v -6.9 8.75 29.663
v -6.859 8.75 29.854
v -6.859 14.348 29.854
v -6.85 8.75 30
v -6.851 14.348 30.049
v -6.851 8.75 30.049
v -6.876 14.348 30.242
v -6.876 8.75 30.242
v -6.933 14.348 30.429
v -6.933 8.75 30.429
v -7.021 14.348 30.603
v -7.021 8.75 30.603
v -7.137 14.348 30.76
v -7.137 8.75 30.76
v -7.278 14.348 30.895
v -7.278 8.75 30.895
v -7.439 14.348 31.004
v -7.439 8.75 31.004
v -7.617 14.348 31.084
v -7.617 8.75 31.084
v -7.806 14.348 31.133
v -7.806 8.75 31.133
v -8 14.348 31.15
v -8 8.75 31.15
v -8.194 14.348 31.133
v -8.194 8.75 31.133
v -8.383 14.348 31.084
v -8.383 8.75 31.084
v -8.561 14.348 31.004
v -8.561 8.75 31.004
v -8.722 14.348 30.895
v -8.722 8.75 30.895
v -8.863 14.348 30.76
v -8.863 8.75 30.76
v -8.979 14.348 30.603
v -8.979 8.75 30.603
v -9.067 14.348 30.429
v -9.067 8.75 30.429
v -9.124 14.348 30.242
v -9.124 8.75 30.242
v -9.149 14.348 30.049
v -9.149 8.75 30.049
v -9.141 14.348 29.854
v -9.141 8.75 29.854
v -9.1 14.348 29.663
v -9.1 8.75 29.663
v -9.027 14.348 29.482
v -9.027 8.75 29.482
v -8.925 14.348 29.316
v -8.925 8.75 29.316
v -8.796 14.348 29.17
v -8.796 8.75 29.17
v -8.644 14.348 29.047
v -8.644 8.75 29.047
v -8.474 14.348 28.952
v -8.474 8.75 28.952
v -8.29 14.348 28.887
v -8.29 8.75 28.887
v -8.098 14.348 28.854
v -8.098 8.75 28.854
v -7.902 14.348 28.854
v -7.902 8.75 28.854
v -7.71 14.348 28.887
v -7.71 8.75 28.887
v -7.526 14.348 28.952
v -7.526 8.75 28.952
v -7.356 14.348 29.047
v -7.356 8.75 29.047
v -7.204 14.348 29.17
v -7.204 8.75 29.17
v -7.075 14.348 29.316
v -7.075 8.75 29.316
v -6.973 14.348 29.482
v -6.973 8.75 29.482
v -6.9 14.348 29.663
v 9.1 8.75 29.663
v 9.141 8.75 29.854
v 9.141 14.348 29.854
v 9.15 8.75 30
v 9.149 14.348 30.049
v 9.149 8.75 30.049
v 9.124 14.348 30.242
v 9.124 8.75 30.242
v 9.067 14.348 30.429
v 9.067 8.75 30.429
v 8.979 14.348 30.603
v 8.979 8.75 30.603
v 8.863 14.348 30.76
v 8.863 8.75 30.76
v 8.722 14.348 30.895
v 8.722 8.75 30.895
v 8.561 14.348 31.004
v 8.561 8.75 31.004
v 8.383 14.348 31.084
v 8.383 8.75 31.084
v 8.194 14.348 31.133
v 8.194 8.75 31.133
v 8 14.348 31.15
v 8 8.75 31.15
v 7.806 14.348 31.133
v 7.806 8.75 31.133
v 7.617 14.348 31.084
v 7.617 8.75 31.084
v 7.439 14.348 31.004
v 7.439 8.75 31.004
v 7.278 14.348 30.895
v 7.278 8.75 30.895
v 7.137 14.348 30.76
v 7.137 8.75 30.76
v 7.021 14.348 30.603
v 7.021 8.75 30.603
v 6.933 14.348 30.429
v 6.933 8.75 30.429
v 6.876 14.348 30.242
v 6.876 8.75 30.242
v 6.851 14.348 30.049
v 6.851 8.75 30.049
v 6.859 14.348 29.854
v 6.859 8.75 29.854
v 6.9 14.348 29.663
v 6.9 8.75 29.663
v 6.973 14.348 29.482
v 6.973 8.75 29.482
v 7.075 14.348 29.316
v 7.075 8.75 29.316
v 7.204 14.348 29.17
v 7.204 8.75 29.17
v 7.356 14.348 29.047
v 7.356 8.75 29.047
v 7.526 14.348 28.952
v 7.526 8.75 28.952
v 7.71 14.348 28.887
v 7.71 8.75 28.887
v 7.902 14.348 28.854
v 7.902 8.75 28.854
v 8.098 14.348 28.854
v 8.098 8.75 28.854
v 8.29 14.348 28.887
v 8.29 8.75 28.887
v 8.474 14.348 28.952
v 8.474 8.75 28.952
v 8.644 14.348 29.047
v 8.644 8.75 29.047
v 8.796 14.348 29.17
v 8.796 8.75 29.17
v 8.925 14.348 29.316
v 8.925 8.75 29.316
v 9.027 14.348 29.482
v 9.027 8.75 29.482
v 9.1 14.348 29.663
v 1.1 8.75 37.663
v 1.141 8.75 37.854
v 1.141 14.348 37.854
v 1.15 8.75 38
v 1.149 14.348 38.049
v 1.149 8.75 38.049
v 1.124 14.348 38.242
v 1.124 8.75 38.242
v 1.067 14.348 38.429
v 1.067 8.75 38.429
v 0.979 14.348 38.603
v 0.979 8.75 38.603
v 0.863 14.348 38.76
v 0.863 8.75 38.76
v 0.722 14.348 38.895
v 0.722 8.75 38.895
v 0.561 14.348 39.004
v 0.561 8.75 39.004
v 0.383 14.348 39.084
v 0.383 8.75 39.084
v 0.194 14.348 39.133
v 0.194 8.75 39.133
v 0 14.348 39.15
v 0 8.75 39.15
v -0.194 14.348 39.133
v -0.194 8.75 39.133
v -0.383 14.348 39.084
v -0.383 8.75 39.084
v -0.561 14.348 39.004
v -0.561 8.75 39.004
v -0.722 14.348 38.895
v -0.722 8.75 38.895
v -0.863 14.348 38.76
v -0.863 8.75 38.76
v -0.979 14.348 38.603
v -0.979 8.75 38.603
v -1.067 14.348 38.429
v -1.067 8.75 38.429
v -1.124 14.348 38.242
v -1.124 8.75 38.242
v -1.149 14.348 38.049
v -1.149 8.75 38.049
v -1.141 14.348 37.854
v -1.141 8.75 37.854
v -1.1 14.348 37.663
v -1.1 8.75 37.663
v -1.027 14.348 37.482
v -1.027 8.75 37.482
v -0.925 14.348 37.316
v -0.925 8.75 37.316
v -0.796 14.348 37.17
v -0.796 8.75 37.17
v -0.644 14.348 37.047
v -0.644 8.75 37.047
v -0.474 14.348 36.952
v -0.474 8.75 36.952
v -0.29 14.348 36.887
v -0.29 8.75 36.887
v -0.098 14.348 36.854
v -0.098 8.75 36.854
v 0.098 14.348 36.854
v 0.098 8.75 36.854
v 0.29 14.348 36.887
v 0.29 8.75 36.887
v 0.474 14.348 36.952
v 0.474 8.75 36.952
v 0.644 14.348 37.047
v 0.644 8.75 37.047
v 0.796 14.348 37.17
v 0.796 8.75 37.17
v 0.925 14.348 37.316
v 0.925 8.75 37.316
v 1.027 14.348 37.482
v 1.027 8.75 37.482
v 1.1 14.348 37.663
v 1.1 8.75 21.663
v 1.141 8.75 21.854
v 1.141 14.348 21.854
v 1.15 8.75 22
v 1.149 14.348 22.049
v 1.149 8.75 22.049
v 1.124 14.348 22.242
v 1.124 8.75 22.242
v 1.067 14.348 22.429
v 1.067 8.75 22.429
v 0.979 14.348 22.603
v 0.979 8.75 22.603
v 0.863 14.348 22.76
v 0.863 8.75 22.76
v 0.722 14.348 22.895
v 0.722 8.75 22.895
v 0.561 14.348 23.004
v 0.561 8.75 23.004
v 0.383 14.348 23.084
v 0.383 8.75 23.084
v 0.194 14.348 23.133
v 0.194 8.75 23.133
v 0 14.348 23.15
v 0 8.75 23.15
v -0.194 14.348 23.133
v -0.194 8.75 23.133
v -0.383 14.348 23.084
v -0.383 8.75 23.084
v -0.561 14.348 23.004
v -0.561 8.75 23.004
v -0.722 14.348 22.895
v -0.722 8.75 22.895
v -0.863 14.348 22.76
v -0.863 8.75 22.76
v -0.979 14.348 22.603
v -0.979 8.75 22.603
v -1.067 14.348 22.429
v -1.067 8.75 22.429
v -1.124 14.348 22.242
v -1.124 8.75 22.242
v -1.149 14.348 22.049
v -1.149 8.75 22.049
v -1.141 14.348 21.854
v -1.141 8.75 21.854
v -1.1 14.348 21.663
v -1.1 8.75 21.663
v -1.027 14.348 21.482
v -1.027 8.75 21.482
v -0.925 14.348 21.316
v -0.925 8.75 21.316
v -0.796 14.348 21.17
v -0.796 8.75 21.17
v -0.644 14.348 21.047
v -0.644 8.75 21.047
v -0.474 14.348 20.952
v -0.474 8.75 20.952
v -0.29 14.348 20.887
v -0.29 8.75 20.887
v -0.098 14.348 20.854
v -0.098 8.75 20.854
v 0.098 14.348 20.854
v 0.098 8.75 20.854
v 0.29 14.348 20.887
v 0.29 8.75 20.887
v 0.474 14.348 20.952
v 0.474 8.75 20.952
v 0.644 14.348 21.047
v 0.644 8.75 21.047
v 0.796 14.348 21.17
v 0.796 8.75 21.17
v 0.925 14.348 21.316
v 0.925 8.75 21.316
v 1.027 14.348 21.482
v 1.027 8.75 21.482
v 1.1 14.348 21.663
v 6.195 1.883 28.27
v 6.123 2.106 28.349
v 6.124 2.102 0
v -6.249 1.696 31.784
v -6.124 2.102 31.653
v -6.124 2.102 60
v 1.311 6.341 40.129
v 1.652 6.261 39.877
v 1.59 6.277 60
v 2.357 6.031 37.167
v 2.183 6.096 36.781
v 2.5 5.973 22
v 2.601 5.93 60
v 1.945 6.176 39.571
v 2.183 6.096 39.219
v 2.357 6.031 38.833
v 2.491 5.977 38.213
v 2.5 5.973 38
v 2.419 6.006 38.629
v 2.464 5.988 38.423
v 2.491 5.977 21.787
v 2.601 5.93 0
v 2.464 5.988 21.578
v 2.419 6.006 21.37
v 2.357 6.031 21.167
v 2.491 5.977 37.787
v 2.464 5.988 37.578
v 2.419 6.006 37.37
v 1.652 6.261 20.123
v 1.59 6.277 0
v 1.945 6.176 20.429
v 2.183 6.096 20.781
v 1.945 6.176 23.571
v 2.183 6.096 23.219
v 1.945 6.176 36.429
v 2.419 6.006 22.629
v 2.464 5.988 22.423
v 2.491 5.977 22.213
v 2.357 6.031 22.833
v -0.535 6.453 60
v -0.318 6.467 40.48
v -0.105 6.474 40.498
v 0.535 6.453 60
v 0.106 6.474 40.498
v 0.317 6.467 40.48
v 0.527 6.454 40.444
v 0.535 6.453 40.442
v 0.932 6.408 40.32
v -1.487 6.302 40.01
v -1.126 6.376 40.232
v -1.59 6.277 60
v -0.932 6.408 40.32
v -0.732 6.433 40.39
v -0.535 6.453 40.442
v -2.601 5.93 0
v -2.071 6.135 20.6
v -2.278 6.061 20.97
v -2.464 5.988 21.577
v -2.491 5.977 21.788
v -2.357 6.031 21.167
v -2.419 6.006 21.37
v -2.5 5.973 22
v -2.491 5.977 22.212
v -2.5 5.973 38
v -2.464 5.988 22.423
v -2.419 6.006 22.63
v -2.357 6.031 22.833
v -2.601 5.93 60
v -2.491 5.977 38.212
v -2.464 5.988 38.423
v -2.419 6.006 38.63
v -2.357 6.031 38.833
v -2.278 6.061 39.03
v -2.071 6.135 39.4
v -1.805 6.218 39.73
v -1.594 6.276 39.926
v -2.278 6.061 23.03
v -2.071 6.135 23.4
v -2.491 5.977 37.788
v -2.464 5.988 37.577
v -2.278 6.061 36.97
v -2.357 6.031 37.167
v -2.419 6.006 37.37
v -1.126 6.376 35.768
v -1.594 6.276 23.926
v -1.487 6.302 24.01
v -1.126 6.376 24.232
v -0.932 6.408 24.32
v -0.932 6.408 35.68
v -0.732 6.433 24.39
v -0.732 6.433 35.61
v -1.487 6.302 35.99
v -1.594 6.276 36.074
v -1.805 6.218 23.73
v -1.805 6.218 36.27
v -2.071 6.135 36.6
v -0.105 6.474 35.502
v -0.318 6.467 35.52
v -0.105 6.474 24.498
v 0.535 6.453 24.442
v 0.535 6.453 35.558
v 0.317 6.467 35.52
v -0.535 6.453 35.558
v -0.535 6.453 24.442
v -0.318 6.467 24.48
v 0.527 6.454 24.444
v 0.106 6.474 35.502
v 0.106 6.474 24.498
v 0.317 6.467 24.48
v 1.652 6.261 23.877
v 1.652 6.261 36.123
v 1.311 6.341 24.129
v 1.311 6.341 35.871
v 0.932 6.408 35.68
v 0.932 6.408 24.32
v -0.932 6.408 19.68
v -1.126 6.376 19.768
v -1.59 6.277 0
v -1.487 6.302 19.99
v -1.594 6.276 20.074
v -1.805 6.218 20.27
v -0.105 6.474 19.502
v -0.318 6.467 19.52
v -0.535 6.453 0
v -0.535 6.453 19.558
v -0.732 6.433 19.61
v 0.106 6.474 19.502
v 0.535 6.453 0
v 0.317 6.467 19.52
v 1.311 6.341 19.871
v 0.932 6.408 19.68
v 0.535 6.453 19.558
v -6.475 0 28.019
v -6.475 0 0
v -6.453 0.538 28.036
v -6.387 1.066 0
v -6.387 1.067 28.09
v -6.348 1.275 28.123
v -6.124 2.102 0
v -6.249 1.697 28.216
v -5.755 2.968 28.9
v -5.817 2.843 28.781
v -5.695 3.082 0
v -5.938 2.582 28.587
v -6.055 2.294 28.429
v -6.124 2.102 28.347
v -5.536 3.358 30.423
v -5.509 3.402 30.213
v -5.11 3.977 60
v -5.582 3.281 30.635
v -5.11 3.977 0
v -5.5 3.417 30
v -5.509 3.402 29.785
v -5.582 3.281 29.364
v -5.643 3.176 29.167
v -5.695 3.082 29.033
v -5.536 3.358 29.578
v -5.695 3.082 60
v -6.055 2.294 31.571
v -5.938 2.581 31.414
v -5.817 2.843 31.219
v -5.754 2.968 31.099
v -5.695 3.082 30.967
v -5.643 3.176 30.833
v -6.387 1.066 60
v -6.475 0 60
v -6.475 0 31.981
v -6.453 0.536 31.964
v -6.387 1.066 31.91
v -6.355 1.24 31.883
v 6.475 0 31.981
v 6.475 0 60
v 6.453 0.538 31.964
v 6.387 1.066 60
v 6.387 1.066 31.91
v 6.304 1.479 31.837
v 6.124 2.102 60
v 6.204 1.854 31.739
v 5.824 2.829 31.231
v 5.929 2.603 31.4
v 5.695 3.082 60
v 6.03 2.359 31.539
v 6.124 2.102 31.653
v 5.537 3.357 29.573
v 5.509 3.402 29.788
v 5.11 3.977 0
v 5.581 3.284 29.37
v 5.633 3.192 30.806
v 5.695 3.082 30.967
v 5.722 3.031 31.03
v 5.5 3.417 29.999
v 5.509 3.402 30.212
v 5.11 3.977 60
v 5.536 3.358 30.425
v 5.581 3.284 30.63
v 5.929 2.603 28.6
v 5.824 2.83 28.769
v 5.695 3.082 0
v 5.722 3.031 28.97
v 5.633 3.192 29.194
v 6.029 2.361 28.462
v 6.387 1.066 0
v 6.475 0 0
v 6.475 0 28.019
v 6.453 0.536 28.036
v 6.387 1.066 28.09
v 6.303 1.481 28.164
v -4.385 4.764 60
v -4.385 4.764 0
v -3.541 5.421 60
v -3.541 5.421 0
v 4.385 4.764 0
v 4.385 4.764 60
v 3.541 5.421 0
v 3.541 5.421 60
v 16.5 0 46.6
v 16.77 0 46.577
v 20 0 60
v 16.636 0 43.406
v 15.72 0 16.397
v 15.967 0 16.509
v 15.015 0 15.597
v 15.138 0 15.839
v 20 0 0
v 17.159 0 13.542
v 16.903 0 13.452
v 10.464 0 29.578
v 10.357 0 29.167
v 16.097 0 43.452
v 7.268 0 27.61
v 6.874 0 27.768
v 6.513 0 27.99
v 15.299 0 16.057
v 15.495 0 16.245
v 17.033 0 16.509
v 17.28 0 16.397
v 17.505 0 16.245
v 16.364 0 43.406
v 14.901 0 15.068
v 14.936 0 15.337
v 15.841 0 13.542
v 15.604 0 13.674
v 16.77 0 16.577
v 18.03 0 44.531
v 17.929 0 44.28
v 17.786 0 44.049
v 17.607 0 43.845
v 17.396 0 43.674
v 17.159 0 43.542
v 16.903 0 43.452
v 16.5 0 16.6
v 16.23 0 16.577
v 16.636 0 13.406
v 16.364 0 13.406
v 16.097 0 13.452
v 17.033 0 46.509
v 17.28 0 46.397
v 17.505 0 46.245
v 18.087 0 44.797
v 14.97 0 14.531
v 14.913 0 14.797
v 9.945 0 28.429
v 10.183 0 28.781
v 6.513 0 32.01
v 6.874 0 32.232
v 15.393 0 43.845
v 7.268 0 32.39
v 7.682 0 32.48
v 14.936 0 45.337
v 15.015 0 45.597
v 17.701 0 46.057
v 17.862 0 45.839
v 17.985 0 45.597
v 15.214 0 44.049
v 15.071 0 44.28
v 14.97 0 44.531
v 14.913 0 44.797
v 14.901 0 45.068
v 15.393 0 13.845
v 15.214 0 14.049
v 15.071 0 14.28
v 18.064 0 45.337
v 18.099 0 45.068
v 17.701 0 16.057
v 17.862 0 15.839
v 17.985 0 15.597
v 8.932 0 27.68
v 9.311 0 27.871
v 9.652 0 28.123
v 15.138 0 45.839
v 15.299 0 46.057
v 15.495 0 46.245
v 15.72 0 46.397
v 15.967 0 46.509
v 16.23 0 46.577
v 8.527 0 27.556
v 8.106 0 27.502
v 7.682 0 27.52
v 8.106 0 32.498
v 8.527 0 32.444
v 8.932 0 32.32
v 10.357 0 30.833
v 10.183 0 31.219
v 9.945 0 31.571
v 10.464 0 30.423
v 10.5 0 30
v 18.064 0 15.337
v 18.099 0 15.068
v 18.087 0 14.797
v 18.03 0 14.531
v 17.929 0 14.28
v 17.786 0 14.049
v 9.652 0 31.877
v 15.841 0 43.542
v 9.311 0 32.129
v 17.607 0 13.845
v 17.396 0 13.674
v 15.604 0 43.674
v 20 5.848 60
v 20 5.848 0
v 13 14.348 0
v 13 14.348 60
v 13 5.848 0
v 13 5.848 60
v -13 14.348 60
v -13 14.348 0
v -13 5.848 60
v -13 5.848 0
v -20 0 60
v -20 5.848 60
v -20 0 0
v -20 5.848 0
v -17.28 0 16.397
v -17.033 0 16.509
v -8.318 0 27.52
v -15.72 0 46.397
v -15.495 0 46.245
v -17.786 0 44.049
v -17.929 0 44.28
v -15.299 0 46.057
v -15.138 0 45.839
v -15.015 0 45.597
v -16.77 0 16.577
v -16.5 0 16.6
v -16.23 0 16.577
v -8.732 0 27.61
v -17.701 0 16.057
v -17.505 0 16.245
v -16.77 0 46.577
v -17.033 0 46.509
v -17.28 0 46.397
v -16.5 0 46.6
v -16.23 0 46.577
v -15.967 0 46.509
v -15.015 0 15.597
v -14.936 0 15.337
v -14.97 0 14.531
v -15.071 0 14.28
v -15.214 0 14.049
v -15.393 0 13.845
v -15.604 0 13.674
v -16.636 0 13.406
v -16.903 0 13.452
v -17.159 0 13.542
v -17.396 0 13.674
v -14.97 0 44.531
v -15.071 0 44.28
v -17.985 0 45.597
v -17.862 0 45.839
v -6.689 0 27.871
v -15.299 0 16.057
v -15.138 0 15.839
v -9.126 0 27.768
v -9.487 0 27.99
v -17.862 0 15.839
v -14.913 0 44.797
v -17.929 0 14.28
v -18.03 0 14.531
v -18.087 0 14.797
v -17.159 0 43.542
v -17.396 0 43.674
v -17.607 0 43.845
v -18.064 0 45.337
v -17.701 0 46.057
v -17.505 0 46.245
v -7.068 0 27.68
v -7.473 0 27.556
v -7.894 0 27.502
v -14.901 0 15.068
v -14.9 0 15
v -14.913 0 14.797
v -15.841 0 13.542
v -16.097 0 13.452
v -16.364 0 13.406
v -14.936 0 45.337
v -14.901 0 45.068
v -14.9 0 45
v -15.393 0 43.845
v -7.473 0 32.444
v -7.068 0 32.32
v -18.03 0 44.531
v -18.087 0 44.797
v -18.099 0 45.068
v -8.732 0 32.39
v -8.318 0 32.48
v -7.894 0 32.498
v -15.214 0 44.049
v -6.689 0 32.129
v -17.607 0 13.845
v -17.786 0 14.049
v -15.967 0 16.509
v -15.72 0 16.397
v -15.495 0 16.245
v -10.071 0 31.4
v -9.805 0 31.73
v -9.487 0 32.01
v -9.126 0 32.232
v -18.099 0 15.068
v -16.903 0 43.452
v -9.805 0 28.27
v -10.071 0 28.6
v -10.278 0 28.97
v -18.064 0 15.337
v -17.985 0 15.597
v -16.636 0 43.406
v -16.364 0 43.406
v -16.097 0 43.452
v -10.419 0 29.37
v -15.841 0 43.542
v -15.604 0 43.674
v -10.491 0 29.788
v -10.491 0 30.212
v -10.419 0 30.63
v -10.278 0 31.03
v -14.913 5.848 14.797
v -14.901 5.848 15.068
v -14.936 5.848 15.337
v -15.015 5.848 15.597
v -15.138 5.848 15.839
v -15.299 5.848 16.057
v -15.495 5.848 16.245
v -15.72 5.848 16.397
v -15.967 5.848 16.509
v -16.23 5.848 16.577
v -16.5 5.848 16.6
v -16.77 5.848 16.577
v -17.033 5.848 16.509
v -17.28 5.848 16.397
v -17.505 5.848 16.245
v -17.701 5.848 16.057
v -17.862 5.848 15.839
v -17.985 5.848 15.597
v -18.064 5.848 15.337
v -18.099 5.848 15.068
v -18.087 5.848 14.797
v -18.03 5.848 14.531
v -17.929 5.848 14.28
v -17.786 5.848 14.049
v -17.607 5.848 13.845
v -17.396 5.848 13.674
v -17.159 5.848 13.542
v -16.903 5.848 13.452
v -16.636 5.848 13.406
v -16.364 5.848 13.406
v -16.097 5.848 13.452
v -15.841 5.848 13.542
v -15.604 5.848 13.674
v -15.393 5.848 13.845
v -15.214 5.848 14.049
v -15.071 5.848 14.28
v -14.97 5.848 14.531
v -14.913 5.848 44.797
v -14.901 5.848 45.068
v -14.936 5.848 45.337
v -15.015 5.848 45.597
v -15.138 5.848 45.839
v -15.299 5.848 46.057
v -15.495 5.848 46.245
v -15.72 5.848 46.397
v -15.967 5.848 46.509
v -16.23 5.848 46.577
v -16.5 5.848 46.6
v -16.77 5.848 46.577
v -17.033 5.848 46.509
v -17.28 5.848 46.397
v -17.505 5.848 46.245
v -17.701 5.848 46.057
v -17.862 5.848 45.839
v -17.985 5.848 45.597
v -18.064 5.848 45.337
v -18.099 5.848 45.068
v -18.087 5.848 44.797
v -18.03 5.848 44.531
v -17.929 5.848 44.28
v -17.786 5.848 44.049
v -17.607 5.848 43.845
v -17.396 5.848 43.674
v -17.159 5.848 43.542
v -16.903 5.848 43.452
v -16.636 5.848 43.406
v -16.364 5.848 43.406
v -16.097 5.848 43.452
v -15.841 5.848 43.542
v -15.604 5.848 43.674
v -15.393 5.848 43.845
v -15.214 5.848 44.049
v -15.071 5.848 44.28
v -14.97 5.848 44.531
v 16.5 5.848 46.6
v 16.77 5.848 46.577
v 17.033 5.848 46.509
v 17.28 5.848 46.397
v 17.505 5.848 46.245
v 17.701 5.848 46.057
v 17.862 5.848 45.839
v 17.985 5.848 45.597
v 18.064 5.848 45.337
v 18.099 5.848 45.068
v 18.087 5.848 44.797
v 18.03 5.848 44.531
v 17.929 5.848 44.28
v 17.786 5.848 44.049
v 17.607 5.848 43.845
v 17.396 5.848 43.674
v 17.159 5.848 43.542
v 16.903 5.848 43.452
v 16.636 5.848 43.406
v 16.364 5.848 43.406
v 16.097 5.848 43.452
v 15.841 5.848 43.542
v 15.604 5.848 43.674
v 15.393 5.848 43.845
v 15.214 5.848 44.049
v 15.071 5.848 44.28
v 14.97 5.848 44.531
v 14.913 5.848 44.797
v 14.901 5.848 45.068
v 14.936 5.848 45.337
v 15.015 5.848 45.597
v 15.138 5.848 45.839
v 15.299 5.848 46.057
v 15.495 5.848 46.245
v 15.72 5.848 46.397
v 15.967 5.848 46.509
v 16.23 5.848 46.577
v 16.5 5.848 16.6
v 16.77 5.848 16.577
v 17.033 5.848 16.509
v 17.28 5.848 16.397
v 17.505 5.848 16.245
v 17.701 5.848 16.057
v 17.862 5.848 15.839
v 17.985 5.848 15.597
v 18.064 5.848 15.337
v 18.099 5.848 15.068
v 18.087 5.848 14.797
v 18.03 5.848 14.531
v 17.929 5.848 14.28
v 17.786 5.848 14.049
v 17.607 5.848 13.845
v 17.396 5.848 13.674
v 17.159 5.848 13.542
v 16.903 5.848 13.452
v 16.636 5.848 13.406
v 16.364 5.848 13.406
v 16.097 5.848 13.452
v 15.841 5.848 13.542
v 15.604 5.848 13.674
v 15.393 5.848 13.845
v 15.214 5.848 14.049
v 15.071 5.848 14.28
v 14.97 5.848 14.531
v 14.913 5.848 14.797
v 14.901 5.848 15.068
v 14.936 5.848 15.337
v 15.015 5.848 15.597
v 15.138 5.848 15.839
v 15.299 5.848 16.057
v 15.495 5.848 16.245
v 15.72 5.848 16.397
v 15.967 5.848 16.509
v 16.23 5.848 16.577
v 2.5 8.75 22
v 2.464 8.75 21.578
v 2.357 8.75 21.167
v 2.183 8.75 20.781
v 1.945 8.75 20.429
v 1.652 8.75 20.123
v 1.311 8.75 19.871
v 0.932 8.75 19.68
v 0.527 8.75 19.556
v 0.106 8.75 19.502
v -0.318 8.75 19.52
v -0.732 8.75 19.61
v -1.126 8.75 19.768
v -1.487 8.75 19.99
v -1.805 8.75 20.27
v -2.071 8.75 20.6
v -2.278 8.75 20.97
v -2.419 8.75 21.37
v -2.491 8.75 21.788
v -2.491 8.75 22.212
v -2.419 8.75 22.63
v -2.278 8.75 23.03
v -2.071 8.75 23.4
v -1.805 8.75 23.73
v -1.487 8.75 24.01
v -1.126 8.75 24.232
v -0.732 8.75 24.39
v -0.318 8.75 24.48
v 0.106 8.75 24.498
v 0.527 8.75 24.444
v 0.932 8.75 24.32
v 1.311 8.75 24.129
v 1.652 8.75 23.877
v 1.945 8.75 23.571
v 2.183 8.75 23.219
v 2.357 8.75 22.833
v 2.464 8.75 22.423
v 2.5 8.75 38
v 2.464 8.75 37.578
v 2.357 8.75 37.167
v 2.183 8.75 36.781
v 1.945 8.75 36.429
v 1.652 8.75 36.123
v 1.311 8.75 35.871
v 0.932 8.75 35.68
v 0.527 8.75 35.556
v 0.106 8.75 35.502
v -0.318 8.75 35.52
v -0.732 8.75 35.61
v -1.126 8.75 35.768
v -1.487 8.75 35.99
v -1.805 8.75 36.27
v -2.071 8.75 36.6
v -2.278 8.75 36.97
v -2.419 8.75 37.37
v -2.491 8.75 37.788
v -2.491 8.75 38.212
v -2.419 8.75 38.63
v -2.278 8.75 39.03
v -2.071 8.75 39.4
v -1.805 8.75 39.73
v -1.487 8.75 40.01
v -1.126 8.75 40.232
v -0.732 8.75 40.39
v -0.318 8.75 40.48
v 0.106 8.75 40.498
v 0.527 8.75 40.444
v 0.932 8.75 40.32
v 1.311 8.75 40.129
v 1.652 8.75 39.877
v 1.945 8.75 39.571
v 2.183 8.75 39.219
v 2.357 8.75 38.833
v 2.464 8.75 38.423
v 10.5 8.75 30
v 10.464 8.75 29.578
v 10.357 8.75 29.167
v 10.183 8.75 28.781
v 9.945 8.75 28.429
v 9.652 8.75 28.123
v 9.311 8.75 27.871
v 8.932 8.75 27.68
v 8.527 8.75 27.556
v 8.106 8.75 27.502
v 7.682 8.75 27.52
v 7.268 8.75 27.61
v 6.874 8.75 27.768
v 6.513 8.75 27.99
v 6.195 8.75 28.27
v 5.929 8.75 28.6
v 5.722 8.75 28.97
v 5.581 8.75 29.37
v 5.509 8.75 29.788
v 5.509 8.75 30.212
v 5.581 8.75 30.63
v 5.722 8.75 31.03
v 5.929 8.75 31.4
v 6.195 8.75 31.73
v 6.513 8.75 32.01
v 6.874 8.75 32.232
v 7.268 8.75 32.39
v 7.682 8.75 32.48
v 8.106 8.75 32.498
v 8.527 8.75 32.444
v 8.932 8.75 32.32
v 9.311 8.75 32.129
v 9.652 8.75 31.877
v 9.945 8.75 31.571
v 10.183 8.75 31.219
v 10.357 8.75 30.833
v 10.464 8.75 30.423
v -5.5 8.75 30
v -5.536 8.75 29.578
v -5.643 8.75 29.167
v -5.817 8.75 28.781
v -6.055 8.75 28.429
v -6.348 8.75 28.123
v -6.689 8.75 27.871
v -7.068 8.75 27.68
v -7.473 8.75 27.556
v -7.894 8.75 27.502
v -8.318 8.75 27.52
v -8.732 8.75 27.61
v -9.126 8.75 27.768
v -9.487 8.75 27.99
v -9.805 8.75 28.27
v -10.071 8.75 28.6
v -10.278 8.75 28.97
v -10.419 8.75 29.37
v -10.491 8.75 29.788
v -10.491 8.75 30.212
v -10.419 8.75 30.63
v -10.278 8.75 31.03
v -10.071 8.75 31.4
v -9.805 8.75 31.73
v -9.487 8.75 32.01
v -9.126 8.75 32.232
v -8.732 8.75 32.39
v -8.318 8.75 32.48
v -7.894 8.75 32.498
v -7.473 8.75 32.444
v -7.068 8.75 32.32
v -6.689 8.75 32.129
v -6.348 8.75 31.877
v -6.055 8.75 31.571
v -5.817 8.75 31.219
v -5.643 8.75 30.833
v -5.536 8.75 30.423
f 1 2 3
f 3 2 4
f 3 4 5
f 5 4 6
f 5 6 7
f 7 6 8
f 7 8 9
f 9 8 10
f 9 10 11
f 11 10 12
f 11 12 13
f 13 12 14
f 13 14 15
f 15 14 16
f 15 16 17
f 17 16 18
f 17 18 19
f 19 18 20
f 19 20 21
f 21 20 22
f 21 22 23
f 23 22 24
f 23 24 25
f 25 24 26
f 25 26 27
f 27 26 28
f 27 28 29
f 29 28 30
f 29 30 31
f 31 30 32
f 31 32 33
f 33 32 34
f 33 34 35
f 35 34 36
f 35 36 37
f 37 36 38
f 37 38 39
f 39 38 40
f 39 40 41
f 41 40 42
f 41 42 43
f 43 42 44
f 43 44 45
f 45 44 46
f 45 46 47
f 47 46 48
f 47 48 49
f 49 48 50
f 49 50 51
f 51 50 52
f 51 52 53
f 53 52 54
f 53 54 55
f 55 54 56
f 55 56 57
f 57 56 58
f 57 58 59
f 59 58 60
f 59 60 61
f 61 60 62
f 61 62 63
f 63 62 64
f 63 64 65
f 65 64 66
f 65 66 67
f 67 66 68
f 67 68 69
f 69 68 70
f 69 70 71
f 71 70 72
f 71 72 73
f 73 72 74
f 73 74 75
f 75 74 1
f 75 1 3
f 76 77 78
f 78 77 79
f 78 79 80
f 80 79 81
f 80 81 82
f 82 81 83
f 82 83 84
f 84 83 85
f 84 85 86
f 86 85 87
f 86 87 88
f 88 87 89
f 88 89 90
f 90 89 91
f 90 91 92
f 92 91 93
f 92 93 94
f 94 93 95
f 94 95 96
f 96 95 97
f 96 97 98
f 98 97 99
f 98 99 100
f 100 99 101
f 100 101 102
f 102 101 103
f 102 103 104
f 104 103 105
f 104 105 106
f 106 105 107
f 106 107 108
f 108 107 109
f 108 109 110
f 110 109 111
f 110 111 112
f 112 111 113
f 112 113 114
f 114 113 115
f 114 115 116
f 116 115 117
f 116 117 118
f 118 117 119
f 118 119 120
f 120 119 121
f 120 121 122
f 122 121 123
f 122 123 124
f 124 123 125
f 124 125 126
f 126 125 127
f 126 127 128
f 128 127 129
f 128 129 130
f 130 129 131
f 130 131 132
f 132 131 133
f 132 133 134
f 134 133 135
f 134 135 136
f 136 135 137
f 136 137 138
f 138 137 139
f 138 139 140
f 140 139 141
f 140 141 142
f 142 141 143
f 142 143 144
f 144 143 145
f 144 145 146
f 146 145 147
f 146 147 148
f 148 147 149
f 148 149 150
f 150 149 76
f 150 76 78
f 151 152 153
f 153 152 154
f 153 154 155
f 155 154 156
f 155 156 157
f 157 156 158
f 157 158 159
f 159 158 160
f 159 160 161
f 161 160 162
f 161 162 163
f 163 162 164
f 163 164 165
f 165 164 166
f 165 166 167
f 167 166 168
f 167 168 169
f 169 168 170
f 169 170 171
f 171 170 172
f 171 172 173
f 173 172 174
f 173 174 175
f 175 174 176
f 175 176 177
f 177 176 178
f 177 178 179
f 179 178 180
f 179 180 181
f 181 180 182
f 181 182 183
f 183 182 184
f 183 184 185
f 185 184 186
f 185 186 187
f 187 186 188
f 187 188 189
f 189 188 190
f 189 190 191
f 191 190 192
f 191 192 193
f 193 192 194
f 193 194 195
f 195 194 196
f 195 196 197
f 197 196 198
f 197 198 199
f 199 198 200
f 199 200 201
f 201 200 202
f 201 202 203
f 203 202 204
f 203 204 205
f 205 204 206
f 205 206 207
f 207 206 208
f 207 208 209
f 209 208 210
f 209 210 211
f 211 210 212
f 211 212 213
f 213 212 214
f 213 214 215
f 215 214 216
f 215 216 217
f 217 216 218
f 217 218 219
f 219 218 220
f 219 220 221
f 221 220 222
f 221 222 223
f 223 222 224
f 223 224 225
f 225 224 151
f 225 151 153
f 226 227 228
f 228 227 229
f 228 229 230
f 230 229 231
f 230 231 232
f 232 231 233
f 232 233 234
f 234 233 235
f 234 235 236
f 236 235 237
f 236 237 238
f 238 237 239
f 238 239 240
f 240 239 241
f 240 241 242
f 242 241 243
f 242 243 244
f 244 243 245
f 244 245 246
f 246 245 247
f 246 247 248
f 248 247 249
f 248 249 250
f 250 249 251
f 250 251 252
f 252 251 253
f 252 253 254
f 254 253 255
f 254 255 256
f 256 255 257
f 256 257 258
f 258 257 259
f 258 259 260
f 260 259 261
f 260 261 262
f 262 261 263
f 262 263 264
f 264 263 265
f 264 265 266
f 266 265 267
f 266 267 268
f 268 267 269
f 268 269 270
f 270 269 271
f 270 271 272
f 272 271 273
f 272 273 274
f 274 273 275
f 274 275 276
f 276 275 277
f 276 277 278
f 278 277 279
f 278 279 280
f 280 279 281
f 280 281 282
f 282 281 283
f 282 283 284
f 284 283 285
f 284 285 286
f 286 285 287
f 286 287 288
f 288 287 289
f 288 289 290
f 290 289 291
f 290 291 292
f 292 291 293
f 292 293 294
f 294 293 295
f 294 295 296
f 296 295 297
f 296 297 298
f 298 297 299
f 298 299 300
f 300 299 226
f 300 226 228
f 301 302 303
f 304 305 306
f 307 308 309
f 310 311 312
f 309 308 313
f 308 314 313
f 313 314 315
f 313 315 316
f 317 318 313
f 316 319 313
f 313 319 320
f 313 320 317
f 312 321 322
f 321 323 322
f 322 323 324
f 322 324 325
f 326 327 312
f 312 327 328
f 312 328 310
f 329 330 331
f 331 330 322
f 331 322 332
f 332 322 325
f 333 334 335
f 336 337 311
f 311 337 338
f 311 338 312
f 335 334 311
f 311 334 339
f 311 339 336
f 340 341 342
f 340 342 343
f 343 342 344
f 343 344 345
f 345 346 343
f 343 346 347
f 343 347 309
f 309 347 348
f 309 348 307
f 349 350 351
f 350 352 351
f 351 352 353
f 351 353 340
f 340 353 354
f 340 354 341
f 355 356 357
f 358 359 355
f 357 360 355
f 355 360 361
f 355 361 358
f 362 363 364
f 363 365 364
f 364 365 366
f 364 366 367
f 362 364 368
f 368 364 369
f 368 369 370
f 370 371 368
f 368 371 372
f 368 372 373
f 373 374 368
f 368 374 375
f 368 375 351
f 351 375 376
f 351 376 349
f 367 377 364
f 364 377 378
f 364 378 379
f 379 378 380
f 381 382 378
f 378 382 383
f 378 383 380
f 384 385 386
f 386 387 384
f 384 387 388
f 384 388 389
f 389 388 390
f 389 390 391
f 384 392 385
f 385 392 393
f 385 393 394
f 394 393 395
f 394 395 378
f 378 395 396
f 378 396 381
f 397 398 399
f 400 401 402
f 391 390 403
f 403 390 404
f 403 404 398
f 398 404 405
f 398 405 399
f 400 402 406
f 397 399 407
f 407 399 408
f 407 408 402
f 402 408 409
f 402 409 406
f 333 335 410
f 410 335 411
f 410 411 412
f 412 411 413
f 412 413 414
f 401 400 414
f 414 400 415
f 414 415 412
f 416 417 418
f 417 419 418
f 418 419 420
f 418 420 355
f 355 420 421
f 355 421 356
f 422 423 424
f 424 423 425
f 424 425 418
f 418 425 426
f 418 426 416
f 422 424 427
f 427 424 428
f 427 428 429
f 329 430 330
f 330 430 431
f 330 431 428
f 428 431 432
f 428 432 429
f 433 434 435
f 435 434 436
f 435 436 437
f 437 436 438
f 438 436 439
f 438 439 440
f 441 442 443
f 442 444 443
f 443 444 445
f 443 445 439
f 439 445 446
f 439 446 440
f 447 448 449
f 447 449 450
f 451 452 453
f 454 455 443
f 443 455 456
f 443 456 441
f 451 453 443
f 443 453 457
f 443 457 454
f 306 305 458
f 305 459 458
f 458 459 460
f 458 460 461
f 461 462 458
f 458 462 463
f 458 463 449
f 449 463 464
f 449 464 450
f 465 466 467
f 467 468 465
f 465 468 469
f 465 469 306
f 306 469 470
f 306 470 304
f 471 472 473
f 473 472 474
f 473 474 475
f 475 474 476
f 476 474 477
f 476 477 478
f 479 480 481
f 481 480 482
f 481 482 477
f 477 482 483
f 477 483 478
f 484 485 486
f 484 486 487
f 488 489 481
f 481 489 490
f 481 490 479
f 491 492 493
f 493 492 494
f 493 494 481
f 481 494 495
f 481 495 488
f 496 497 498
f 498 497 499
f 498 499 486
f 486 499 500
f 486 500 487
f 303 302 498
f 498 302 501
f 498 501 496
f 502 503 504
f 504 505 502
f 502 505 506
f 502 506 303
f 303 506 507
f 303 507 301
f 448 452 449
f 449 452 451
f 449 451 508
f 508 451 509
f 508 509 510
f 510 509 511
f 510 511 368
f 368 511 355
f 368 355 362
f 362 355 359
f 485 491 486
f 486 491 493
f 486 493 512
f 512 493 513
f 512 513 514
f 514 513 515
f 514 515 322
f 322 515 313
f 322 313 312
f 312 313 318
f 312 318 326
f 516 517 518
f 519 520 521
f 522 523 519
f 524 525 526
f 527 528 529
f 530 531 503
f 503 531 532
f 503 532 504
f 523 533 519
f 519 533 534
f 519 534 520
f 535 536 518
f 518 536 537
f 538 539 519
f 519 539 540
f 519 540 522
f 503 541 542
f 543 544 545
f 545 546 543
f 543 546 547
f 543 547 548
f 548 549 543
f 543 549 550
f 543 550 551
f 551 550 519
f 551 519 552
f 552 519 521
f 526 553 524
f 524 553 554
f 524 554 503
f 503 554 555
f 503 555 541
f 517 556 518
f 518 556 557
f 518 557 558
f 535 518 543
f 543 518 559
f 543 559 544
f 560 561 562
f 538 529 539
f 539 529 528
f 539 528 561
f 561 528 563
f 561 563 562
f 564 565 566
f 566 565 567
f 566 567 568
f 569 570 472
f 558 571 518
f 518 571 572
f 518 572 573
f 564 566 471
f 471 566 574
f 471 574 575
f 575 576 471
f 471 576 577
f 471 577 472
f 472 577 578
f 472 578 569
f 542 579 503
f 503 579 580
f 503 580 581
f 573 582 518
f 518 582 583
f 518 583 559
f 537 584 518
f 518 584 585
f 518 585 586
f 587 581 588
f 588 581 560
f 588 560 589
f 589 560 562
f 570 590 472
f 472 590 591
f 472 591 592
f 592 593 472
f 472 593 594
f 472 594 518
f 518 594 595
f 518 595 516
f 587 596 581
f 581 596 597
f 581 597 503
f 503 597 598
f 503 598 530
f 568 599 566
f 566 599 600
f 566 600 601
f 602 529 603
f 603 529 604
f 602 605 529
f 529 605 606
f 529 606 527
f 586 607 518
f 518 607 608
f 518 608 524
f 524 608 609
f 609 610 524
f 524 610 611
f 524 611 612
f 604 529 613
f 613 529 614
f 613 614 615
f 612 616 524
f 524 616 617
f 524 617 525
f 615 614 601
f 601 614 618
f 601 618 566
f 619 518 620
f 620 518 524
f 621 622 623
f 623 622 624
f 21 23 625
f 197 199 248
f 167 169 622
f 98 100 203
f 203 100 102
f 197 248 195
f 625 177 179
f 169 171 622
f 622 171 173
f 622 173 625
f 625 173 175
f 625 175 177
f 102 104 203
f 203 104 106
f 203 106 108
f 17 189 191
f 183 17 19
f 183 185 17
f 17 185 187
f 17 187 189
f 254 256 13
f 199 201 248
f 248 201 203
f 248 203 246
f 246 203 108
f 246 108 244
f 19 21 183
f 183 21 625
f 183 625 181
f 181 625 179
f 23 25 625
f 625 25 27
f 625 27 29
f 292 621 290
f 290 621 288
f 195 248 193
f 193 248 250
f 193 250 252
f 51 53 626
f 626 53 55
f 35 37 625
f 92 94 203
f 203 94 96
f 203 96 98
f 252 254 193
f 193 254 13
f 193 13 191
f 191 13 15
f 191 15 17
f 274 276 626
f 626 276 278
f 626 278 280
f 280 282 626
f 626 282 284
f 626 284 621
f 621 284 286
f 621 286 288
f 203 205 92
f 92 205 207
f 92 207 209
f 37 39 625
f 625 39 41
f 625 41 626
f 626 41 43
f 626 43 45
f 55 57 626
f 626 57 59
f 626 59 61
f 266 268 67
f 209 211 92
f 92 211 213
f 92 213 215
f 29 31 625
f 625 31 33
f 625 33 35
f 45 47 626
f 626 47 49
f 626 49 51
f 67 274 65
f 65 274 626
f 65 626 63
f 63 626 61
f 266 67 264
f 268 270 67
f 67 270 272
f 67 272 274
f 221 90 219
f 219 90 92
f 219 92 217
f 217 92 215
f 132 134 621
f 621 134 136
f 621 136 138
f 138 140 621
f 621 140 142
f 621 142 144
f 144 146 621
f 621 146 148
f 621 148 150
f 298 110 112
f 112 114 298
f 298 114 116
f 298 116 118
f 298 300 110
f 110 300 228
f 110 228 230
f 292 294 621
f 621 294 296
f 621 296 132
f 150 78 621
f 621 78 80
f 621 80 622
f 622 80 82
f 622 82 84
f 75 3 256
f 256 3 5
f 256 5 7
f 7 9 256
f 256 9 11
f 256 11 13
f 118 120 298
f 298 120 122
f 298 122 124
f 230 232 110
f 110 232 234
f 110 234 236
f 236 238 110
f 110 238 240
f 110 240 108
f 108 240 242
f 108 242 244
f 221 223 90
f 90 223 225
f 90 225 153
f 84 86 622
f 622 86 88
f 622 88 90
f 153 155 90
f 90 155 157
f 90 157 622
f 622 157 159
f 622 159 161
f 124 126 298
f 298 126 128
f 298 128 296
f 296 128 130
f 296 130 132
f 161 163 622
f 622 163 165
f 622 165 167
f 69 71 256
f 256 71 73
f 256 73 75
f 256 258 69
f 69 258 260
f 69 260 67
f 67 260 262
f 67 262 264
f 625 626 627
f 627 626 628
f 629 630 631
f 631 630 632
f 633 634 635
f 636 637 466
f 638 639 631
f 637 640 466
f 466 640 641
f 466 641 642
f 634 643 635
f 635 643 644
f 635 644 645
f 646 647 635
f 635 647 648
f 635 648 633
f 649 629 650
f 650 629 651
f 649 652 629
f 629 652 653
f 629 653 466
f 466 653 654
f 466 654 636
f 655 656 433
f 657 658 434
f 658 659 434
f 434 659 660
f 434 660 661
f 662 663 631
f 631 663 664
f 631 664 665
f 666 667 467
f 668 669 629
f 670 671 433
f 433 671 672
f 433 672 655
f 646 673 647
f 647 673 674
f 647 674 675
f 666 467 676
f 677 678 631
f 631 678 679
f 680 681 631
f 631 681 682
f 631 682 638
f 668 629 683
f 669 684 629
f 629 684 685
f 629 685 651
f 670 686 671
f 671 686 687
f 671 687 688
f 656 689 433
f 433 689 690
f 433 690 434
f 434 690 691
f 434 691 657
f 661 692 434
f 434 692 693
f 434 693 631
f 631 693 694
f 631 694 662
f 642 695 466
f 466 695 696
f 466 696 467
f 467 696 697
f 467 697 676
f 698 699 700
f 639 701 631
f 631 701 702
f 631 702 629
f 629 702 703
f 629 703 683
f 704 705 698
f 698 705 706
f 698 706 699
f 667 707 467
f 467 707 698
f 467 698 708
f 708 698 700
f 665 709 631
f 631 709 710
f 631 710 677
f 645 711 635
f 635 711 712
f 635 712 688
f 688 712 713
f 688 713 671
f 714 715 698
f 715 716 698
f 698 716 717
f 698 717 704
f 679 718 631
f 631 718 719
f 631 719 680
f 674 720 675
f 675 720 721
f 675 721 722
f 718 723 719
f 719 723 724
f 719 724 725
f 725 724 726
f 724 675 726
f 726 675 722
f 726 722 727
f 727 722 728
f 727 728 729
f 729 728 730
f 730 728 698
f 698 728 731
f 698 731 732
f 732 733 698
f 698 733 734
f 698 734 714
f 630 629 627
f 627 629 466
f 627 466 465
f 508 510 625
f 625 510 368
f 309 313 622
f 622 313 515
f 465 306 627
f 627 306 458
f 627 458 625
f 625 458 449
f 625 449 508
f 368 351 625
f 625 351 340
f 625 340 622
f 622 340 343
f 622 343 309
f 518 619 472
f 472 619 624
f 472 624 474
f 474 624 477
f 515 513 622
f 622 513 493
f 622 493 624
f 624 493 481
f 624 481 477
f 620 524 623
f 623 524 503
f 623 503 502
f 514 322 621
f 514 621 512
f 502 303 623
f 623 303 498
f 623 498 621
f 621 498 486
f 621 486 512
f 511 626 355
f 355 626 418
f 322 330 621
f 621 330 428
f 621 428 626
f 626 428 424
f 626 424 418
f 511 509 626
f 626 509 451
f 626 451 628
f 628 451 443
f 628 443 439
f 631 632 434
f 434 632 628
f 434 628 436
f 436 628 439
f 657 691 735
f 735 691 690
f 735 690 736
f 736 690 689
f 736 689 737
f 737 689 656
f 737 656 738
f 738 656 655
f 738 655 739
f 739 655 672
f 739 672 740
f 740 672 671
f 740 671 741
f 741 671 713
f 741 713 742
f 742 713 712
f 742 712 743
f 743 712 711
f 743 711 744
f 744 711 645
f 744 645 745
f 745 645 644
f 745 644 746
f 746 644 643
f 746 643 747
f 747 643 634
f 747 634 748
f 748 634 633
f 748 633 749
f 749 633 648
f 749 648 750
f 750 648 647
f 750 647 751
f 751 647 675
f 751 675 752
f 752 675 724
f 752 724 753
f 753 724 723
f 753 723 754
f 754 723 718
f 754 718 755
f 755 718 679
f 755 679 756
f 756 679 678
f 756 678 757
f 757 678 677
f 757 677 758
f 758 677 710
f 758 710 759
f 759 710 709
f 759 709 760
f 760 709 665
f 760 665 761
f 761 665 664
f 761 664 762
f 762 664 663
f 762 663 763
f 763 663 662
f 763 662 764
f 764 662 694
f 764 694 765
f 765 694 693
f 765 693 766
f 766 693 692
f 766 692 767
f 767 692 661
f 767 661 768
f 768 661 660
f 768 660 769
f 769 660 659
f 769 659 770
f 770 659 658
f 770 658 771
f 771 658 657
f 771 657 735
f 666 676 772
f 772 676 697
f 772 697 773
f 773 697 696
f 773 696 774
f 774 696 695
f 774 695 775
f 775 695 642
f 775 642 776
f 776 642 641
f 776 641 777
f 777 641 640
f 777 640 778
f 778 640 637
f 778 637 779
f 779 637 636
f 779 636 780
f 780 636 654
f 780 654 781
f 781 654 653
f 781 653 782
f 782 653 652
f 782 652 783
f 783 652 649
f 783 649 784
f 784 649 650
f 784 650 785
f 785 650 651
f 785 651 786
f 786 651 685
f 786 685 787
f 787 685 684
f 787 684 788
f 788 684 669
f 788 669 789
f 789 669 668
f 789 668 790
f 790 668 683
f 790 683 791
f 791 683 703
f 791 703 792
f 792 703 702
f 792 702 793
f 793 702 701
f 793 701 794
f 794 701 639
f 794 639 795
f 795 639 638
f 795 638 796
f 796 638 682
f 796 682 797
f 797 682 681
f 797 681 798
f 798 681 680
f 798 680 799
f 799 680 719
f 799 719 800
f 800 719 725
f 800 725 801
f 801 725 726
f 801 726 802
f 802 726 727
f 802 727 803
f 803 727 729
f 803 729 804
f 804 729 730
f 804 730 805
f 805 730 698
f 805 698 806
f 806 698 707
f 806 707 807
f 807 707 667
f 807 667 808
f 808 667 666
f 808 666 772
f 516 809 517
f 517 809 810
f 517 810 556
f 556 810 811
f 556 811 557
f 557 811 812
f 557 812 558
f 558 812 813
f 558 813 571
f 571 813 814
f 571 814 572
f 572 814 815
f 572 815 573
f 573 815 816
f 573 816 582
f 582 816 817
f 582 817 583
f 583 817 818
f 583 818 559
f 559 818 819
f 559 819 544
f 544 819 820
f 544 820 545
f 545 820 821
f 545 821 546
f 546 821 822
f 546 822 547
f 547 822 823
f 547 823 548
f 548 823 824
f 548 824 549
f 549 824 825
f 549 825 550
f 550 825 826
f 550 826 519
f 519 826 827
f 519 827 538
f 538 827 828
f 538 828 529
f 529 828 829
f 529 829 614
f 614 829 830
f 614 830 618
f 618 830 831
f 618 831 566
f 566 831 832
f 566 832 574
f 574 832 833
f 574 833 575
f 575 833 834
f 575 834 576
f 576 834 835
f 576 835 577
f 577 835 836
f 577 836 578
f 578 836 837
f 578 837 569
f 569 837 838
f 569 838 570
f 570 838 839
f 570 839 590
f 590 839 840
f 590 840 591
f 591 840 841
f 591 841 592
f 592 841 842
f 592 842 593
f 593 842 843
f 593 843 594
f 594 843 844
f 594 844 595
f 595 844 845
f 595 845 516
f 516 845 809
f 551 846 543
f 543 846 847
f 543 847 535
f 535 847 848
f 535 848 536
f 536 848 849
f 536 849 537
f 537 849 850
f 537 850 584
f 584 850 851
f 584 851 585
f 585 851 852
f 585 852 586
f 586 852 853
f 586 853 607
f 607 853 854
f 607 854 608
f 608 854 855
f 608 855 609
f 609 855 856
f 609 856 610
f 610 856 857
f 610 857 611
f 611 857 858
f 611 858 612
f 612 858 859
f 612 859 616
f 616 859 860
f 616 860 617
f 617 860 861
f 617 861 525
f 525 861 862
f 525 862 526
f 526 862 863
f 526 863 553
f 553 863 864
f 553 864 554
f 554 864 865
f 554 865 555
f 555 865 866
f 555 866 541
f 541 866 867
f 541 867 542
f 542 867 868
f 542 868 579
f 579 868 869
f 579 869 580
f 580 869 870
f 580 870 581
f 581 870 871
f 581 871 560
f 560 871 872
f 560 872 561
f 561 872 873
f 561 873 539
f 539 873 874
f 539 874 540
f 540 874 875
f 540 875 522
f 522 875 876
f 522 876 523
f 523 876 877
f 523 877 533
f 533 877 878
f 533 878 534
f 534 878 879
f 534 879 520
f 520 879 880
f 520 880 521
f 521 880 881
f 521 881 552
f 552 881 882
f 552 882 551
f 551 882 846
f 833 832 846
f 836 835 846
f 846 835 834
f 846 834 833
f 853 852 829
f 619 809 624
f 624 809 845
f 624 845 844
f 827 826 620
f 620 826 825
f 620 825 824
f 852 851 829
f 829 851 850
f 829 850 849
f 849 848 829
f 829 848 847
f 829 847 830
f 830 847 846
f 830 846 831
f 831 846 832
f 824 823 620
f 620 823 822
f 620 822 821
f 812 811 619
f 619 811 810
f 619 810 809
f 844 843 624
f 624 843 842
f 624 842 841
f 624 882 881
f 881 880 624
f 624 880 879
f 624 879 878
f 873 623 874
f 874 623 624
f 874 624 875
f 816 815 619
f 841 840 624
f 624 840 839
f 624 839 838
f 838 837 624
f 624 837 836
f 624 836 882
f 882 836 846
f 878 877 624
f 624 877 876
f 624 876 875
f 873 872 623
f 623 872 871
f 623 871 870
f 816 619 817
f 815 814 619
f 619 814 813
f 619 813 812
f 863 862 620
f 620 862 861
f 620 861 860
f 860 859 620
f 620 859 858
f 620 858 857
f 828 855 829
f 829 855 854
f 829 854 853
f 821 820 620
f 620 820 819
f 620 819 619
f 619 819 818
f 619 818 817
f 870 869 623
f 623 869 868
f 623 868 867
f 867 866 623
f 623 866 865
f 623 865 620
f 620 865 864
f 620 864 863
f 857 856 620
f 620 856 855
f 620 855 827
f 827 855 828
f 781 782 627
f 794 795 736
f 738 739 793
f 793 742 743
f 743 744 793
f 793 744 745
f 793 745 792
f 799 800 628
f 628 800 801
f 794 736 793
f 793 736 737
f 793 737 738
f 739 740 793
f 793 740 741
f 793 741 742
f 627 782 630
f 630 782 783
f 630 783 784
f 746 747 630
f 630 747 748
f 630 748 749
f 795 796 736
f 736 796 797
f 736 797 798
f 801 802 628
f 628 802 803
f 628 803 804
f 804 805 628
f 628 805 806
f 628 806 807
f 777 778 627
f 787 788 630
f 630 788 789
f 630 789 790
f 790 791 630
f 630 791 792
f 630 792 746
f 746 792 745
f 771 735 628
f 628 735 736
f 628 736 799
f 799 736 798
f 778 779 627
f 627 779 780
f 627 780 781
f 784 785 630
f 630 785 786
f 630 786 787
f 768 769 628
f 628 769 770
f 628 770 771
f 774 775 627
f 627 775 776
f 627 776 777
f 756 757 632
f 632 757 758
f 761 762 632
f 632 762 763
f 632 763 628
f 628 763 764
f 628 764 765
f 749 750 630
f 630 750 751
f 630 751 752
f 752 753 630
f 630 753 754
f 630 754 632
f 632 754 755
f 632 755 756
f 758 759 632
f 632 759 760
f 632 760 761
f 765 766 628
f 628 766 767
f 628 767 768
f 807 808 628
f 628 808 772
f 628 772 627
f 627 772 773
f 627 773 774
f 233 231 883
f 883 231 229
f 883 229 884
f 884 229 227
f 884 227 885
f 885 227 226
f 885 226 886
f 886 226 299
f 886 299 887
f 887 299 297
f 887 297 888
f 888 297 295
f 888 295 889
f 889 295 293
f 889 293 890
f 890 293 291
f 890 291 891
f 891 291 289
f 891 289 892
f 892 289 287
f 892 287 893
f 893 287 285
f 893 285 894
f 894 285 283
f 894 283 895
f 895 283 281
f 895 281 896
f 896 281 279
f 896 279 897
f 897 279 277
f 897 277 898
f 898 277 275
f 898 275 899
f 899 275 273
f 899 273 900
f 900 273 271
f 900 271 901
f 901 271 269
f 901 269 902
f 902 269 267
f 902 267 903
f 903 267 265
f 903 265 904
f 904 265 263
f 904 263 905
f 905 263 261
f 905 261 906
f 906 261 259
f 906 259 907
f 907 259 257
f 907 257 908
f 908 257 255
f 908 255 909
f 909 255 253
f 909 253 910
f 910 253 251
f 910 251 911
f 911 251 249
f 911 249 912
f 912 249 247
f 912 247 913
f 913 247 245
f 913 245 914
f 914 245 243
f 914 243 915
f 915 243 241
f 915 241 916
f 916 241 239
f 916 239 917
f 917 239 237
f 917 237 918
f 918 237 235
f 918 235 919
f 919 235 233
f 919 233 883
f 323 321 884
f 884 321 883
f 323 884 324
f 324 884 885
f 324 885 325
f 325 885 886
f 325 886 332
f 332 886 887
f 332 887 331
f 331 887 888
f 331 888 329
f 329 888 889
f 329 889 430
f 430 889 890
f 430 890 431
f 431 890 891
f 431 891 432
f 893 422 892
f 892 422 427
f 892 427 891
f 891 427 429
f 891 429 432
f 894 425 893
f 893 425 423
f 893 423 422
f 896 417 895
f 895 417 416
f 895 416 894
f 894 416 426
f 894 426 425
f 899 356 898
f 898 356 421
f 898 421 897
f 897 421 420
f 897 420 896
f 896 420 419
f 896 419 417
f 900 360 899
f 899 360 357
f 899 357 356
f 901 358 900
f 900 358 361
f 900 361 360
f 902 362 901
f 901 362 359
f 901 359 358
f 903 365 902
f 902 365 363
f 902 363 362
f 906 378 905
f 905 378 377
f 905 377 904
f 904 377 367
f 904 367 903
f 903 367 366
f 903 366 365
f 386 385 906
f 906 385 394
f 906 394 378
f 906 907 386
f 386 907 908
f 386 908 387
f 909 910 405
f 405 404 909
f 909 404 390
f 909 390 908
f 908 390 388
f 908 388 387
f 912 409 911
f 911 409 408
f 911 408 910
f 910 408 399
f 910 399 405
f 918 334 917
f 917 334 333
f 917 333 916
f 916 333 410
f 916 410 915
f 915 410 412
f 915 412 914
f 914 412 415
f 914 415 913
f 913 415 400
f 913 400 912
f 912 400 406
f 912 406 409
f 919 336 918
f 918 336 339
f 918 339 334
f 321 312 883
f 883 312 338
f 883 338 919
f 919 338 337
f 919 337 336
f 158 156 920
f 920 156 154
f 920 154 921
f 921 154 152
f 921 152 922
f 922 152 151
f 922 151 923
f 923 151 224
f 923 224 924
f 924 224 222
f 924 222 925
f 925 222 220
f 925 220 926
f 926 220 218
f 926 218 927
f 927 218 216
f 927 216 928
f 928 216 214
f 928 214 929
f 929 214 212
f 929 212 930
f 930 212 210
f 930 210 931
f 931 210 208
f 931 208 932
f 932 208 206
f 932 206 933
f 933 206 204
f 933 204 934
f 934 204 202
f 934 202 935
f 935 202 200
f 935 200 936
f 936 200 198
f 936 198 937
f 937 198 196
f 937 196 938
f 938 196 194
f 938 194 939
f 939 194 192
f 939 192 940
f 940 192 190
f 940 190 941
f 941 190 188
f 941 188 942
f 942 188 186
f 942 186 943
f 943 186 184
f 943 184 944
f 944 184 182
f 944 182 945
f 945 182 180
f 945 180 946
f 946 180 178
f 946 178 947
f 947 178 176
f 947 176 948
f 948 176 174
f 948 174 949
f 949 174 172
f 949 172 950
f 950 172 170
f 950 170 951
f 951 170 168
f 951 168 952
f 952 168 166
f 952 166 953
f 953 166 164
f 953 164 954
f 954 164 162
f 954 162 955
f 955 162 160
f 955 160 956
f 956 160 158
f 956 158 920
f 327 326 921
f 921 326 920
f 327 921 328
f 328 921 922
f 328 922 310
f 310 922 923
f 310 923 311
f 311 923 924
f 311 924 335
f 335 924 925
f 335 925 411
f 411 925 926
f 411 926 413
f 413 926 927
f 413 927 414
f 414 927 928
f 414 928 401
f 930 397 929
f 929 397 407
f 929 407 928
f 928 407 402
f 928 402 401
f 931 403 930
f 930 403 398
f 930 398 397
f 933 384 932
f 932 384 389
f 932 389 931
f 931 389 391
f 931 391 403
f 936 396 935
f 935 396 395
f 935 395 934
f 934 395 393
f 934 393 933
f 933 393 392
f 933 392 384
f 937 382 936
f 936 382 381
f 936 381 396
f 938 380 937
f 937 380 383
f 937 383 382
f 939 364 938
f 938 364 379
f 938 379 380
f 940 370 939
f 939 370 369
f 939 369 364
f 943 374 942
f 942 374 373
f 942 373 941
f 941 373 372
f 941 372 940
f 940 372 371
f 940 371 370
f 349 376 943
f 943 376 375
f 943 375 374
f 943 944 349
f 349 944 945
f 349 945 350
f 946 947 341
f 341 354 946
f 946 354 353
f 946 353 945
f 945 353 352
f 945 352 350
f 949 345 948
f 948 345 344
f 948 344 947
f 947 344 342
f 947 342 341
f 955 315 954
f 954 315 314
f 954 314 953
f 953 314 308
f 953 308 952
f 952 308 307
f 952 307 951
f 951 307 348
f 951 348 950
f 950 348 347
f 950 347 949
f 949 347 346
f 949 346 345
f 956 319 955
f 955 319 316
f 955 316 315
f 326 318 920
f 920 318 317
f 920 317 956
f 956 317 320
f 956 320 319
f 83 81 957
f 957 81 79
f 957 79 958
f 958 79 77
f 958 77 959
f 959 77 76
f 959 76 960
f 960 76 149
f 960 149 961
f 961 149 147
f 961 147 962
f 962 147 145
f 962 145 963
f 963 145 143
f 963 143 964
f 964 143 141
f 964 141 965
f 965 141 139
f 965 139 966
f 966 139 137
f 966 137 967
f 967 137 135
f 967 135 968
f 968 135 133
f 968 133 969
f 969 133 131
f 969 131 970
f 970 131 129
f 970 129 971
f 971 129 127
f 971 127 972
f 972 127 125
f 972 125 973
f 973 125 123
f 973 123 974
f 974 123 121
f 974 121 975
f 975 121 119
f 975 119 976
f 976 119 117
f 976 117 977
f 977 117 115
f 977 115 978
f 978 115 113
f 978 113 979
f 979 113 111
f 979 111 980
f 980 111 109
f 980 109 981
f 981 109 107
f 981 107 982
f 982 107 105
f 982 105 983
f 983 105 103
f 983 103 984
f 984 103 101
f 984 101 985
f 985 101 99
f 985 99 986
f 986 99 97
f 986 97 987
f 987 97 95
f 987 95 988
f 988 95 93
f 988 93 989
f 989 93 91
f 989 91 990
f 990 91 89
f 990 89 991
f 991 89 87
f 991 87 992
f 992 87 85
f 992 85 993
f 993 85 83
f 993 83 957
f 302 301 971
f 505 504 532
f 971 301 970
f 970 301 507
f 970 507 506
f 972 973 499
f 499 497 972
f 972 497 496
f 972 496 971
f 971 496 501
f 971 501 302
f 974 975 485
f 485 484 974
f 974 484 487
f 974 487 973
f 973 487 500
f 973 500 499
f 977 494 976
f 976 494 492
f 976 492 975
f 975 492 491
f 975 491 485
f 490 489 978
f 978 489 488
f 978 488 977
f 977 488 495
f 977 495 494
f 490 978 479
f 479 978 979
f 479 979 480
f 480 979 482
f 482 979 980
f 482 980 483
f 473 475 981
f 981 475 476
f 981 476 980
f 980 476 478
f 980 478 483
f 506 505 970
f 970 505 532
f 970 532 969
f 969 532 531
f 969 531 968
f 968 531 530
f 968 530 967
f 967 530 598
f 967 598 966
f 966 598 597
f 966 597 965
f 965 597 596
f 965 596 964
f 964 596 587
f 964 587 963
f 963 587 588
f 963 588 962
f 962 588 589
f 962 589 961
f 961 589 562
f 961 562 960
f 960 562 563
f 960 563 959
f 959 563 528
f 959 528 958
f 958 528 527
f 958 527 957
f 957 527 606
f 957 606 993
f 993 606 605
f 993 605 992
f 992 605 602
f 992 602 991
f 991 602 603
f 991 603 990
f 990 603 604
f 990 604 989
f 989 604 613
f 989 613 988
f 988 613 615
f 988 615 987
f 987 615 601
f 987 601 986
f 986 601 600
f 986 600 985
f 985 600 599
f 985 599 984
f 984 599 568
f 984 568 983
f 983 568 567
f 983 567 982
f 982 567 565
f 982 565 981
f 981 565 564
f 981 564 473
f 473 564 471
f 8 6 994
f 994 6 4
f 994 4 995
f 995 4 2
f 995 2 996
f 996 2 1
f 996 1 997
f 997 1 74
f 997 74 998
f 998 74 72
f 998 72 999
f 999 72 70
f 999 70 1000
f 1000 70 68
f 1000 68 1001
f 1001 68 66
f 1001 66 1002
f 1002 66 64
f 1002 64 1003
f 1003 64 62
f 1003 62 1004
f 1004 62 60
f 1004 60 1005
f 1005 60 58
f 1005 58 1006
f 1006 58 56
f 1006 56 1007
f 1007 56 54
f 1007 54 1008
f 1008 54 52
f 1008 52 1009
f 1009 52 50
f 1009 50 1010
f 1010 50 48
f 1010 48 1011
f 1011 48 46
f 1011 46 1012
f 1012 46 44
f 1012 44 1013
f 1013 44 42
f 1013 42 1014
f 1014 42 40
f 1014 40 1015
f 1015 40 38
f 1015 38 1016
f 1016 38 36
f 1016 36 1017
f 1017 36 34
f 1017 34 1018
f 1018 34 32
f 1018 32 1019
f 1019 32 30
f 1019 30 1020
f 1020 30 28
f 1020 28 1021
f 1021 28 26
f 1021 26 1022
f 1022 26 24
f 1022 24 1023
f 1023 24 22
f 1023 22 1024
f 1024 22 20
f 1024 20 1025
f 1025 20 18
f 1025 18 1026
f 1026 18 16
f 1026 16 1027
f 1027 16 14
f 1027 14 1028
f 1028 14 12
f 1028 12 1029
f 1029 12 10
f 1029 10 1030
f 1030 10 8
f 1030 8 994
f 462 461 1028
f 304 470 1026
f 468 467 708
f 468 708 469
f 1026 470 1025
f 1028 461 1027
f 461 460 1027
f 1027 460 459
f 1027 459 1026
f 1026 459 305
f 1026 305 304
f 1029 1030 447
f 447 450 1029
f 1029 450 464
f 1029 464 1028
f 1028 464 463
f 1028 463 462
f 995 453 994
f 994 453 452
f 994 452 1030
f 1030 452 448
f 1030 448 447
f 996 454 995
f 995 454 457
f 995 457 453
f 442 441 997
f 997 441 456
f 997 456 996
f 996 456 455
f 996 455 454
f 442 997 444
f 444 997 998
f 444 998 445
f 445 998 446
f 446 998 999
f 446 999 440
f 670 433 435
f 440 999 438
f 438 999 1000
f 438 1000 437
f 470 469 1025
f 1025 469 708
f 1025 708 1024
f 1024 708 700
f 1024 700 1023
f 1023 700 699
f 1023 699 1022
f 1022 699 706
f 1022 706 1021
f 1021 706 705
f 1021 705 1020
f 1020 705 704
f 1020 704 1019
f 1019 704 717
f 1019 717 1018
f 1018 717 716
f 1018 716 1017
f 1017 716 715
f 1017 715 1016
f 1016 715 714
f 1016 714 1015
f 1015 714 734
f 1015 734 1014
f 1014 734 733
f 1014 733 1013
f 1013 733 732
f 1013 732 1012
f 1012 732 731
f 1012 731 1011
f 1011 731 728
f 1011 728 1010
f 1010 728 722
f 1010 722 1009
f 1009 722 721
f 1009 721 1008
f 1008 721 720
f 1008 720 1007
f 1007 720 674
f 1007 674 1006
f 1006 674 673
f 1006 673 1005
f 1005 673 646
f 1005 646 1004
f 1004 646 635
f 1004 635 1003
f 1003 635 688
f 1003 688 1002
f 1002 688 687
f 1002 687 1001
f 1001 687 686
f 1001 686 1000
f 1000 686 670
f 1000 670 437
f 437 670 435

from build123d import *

# Parameters (mm, degrees)
BOSS_EXTRUDE6_DEPTH = 60
SKETCH9_R           = 1.6
CUT_EXTRUDE3_DEPTH  = 50
SKETCH10_R          = 1.15
CUT_EXTRUDE5_DEPTH  = 22.05
SKETCH11_W          = 7
SKETCH11_H          = 60
SKETCH11_R          = 1.6
BOSS_EXTRUDE7_DEPTH = 3
SKETCH12_W          = 7
SKETCH12_H          = 60
SKETCH12_R          = 1.6
BOSS_EXTRUDE8_DEPTH = 3
SKETCH16_R          = 2.5
CUT_EXTRUDE9_DEPTH  = 8.75
SKETCH17_R          = 2.5
CUT_EXTRUDE10_DEPTH = 8.75


with BuildPart() as part:
    # Sketch2 → Boss-Extrude6 (new body)
    with BuildSketch(Plane.XY):
        with BuildLine():
            ThreePointArc((6.475, 0), (0, 6.475), (-6.475, 0))
            Line((-6.475, 0), (-20, 0))
            Line((-20, 0), (-20, 2.847591854))
            Line((-20, 2.847591854), (-13, 2.847591854))
            Line((-13, 2.847591854), (-13, 14.347591854))
            Line((-13, 14.347591854), (13, 14.347591854))
            Line((13, 14.347591854), (13, 2.847591854))
            Line((13, 2.847591854), (20, 2.847591854))
            Line((20, 2.847591854), (20, 0))
            Line((20, 0), (6.475, 0))
        make_face()
    extrude(amount=BOSS_EXTRUDE6_DEPTH)

    # Sketch9 → Cut-Extrude3 (cut)
    with BuildSketch(Plane(origin=(0, 2.847591854, 0), x_dir=(1, 0, 0), z_dir=(0, 1, 0))):
        with Locations((-16.5, -15)):
            Circle(SKETCH9_R)
        with Locations((-16.5, -45)):
            Circle(SKETCH9_R)
        with Locations((16.5, -15)):
            Circle(SKETCH9_R)
        with Locations((16.5, -45)):
            Circle(SKETCH9_R)
    extrude(amount=-CUT_EXTRUDE3_DEPTH, mode=Mode.SUBTRACT)

    # Sketch10 → Cut-Extrude5 (cut)
    with BuildSketch(Plane(origin=(0, 14.347591854, 0), x_dir=(1, 0, 0), z_dir=(0, 1, 0))):
        with Locations((0, -22)):
            Circle(SKETCH10_R)
        with Locations((8, -30)):
            Circle(SKETCH10_R)
        with Locations((-8, -30)):
            Circle(SKETCH10_R)
        with Locations((0, -38)):
            Circle(SKETCH10_R)
    extrude(amount=-CUT_EXTRUDE5_DEPTH, mode=Mode.SUBTRACT)

    # Sketch11 → Boss-Extrude7 (add)
    with BuildSketch(Plane(origin=(0, 2.847591854, 0), x_dir=(1, 0, 0), z_dir=(0, 1, 0))):
        with Locations((16.5, -30)):
            Rectangle(SKETCH11_W, SKETCH11_H)
        with Locations((16.5, -45)):
            Circle(SKETCH11_R, mode=Mode.SUBTRACT)
        with Locations((16.5, -15)):
            Circle(SKETCH11_R, mode=Mode.SUBTRACT)
    extrude(amount=BOSS_EXTRUDE7_DEPTH)

    # Sketch12 → Boss-Extrude8 (add)
    with BuildSketch(Plane(origin=(0, 2.847591854, 0), x_dir=(1, 0, 0), z_dir=(0, 1, 0))):
        with Locations((-16.5, -30)):
            Rectangle(SKETCH12_W, SKETCH12_H)
        with Locations((-16.5, -45)):
            Circle(SKETCH12_R, mode=Mode.SUBTRACT)
        with Locations((-16.5, -15)):
            Circle(SKETCH12_R, mode=Mode.SUBTRACT)
    extrude(amount=BOSS_EXTRUDE8_DEPTH)

    # Sketch16 → Cut-Extrude9 (cut)
    with BuildSketch(Plane(origin=(0, 0, 0), x_dir=(-1, 0, 0), z_dir=(0, -1, 0))):
        with Locations((0, -22)):
            Circle(SKETCH16_R)
        with Locations((0, -38)):
            Circle(SKETCH16_R)
    extrude(amount=-CUT_EXTRUDE9_DEPTH, mode=Mode.SUBTRACT)

    # Sketch17 → Cut-Extrude10 (cut)
    with BuildSketch(Plane(origin=(0, 0, 0), x_dir=(-1, 0, 0), z_dir=(0, -1, 0))):
        with Locations((-8, -30)):
            Circle(SKETCH17_R)
        with Locations((8, -30)):
            Circle(SKETCH17_R)
    extrude(amount=-CUT_EXTRUDE10_DEPTH, mode=Mode.SUBTRACT)


solid = part.part
